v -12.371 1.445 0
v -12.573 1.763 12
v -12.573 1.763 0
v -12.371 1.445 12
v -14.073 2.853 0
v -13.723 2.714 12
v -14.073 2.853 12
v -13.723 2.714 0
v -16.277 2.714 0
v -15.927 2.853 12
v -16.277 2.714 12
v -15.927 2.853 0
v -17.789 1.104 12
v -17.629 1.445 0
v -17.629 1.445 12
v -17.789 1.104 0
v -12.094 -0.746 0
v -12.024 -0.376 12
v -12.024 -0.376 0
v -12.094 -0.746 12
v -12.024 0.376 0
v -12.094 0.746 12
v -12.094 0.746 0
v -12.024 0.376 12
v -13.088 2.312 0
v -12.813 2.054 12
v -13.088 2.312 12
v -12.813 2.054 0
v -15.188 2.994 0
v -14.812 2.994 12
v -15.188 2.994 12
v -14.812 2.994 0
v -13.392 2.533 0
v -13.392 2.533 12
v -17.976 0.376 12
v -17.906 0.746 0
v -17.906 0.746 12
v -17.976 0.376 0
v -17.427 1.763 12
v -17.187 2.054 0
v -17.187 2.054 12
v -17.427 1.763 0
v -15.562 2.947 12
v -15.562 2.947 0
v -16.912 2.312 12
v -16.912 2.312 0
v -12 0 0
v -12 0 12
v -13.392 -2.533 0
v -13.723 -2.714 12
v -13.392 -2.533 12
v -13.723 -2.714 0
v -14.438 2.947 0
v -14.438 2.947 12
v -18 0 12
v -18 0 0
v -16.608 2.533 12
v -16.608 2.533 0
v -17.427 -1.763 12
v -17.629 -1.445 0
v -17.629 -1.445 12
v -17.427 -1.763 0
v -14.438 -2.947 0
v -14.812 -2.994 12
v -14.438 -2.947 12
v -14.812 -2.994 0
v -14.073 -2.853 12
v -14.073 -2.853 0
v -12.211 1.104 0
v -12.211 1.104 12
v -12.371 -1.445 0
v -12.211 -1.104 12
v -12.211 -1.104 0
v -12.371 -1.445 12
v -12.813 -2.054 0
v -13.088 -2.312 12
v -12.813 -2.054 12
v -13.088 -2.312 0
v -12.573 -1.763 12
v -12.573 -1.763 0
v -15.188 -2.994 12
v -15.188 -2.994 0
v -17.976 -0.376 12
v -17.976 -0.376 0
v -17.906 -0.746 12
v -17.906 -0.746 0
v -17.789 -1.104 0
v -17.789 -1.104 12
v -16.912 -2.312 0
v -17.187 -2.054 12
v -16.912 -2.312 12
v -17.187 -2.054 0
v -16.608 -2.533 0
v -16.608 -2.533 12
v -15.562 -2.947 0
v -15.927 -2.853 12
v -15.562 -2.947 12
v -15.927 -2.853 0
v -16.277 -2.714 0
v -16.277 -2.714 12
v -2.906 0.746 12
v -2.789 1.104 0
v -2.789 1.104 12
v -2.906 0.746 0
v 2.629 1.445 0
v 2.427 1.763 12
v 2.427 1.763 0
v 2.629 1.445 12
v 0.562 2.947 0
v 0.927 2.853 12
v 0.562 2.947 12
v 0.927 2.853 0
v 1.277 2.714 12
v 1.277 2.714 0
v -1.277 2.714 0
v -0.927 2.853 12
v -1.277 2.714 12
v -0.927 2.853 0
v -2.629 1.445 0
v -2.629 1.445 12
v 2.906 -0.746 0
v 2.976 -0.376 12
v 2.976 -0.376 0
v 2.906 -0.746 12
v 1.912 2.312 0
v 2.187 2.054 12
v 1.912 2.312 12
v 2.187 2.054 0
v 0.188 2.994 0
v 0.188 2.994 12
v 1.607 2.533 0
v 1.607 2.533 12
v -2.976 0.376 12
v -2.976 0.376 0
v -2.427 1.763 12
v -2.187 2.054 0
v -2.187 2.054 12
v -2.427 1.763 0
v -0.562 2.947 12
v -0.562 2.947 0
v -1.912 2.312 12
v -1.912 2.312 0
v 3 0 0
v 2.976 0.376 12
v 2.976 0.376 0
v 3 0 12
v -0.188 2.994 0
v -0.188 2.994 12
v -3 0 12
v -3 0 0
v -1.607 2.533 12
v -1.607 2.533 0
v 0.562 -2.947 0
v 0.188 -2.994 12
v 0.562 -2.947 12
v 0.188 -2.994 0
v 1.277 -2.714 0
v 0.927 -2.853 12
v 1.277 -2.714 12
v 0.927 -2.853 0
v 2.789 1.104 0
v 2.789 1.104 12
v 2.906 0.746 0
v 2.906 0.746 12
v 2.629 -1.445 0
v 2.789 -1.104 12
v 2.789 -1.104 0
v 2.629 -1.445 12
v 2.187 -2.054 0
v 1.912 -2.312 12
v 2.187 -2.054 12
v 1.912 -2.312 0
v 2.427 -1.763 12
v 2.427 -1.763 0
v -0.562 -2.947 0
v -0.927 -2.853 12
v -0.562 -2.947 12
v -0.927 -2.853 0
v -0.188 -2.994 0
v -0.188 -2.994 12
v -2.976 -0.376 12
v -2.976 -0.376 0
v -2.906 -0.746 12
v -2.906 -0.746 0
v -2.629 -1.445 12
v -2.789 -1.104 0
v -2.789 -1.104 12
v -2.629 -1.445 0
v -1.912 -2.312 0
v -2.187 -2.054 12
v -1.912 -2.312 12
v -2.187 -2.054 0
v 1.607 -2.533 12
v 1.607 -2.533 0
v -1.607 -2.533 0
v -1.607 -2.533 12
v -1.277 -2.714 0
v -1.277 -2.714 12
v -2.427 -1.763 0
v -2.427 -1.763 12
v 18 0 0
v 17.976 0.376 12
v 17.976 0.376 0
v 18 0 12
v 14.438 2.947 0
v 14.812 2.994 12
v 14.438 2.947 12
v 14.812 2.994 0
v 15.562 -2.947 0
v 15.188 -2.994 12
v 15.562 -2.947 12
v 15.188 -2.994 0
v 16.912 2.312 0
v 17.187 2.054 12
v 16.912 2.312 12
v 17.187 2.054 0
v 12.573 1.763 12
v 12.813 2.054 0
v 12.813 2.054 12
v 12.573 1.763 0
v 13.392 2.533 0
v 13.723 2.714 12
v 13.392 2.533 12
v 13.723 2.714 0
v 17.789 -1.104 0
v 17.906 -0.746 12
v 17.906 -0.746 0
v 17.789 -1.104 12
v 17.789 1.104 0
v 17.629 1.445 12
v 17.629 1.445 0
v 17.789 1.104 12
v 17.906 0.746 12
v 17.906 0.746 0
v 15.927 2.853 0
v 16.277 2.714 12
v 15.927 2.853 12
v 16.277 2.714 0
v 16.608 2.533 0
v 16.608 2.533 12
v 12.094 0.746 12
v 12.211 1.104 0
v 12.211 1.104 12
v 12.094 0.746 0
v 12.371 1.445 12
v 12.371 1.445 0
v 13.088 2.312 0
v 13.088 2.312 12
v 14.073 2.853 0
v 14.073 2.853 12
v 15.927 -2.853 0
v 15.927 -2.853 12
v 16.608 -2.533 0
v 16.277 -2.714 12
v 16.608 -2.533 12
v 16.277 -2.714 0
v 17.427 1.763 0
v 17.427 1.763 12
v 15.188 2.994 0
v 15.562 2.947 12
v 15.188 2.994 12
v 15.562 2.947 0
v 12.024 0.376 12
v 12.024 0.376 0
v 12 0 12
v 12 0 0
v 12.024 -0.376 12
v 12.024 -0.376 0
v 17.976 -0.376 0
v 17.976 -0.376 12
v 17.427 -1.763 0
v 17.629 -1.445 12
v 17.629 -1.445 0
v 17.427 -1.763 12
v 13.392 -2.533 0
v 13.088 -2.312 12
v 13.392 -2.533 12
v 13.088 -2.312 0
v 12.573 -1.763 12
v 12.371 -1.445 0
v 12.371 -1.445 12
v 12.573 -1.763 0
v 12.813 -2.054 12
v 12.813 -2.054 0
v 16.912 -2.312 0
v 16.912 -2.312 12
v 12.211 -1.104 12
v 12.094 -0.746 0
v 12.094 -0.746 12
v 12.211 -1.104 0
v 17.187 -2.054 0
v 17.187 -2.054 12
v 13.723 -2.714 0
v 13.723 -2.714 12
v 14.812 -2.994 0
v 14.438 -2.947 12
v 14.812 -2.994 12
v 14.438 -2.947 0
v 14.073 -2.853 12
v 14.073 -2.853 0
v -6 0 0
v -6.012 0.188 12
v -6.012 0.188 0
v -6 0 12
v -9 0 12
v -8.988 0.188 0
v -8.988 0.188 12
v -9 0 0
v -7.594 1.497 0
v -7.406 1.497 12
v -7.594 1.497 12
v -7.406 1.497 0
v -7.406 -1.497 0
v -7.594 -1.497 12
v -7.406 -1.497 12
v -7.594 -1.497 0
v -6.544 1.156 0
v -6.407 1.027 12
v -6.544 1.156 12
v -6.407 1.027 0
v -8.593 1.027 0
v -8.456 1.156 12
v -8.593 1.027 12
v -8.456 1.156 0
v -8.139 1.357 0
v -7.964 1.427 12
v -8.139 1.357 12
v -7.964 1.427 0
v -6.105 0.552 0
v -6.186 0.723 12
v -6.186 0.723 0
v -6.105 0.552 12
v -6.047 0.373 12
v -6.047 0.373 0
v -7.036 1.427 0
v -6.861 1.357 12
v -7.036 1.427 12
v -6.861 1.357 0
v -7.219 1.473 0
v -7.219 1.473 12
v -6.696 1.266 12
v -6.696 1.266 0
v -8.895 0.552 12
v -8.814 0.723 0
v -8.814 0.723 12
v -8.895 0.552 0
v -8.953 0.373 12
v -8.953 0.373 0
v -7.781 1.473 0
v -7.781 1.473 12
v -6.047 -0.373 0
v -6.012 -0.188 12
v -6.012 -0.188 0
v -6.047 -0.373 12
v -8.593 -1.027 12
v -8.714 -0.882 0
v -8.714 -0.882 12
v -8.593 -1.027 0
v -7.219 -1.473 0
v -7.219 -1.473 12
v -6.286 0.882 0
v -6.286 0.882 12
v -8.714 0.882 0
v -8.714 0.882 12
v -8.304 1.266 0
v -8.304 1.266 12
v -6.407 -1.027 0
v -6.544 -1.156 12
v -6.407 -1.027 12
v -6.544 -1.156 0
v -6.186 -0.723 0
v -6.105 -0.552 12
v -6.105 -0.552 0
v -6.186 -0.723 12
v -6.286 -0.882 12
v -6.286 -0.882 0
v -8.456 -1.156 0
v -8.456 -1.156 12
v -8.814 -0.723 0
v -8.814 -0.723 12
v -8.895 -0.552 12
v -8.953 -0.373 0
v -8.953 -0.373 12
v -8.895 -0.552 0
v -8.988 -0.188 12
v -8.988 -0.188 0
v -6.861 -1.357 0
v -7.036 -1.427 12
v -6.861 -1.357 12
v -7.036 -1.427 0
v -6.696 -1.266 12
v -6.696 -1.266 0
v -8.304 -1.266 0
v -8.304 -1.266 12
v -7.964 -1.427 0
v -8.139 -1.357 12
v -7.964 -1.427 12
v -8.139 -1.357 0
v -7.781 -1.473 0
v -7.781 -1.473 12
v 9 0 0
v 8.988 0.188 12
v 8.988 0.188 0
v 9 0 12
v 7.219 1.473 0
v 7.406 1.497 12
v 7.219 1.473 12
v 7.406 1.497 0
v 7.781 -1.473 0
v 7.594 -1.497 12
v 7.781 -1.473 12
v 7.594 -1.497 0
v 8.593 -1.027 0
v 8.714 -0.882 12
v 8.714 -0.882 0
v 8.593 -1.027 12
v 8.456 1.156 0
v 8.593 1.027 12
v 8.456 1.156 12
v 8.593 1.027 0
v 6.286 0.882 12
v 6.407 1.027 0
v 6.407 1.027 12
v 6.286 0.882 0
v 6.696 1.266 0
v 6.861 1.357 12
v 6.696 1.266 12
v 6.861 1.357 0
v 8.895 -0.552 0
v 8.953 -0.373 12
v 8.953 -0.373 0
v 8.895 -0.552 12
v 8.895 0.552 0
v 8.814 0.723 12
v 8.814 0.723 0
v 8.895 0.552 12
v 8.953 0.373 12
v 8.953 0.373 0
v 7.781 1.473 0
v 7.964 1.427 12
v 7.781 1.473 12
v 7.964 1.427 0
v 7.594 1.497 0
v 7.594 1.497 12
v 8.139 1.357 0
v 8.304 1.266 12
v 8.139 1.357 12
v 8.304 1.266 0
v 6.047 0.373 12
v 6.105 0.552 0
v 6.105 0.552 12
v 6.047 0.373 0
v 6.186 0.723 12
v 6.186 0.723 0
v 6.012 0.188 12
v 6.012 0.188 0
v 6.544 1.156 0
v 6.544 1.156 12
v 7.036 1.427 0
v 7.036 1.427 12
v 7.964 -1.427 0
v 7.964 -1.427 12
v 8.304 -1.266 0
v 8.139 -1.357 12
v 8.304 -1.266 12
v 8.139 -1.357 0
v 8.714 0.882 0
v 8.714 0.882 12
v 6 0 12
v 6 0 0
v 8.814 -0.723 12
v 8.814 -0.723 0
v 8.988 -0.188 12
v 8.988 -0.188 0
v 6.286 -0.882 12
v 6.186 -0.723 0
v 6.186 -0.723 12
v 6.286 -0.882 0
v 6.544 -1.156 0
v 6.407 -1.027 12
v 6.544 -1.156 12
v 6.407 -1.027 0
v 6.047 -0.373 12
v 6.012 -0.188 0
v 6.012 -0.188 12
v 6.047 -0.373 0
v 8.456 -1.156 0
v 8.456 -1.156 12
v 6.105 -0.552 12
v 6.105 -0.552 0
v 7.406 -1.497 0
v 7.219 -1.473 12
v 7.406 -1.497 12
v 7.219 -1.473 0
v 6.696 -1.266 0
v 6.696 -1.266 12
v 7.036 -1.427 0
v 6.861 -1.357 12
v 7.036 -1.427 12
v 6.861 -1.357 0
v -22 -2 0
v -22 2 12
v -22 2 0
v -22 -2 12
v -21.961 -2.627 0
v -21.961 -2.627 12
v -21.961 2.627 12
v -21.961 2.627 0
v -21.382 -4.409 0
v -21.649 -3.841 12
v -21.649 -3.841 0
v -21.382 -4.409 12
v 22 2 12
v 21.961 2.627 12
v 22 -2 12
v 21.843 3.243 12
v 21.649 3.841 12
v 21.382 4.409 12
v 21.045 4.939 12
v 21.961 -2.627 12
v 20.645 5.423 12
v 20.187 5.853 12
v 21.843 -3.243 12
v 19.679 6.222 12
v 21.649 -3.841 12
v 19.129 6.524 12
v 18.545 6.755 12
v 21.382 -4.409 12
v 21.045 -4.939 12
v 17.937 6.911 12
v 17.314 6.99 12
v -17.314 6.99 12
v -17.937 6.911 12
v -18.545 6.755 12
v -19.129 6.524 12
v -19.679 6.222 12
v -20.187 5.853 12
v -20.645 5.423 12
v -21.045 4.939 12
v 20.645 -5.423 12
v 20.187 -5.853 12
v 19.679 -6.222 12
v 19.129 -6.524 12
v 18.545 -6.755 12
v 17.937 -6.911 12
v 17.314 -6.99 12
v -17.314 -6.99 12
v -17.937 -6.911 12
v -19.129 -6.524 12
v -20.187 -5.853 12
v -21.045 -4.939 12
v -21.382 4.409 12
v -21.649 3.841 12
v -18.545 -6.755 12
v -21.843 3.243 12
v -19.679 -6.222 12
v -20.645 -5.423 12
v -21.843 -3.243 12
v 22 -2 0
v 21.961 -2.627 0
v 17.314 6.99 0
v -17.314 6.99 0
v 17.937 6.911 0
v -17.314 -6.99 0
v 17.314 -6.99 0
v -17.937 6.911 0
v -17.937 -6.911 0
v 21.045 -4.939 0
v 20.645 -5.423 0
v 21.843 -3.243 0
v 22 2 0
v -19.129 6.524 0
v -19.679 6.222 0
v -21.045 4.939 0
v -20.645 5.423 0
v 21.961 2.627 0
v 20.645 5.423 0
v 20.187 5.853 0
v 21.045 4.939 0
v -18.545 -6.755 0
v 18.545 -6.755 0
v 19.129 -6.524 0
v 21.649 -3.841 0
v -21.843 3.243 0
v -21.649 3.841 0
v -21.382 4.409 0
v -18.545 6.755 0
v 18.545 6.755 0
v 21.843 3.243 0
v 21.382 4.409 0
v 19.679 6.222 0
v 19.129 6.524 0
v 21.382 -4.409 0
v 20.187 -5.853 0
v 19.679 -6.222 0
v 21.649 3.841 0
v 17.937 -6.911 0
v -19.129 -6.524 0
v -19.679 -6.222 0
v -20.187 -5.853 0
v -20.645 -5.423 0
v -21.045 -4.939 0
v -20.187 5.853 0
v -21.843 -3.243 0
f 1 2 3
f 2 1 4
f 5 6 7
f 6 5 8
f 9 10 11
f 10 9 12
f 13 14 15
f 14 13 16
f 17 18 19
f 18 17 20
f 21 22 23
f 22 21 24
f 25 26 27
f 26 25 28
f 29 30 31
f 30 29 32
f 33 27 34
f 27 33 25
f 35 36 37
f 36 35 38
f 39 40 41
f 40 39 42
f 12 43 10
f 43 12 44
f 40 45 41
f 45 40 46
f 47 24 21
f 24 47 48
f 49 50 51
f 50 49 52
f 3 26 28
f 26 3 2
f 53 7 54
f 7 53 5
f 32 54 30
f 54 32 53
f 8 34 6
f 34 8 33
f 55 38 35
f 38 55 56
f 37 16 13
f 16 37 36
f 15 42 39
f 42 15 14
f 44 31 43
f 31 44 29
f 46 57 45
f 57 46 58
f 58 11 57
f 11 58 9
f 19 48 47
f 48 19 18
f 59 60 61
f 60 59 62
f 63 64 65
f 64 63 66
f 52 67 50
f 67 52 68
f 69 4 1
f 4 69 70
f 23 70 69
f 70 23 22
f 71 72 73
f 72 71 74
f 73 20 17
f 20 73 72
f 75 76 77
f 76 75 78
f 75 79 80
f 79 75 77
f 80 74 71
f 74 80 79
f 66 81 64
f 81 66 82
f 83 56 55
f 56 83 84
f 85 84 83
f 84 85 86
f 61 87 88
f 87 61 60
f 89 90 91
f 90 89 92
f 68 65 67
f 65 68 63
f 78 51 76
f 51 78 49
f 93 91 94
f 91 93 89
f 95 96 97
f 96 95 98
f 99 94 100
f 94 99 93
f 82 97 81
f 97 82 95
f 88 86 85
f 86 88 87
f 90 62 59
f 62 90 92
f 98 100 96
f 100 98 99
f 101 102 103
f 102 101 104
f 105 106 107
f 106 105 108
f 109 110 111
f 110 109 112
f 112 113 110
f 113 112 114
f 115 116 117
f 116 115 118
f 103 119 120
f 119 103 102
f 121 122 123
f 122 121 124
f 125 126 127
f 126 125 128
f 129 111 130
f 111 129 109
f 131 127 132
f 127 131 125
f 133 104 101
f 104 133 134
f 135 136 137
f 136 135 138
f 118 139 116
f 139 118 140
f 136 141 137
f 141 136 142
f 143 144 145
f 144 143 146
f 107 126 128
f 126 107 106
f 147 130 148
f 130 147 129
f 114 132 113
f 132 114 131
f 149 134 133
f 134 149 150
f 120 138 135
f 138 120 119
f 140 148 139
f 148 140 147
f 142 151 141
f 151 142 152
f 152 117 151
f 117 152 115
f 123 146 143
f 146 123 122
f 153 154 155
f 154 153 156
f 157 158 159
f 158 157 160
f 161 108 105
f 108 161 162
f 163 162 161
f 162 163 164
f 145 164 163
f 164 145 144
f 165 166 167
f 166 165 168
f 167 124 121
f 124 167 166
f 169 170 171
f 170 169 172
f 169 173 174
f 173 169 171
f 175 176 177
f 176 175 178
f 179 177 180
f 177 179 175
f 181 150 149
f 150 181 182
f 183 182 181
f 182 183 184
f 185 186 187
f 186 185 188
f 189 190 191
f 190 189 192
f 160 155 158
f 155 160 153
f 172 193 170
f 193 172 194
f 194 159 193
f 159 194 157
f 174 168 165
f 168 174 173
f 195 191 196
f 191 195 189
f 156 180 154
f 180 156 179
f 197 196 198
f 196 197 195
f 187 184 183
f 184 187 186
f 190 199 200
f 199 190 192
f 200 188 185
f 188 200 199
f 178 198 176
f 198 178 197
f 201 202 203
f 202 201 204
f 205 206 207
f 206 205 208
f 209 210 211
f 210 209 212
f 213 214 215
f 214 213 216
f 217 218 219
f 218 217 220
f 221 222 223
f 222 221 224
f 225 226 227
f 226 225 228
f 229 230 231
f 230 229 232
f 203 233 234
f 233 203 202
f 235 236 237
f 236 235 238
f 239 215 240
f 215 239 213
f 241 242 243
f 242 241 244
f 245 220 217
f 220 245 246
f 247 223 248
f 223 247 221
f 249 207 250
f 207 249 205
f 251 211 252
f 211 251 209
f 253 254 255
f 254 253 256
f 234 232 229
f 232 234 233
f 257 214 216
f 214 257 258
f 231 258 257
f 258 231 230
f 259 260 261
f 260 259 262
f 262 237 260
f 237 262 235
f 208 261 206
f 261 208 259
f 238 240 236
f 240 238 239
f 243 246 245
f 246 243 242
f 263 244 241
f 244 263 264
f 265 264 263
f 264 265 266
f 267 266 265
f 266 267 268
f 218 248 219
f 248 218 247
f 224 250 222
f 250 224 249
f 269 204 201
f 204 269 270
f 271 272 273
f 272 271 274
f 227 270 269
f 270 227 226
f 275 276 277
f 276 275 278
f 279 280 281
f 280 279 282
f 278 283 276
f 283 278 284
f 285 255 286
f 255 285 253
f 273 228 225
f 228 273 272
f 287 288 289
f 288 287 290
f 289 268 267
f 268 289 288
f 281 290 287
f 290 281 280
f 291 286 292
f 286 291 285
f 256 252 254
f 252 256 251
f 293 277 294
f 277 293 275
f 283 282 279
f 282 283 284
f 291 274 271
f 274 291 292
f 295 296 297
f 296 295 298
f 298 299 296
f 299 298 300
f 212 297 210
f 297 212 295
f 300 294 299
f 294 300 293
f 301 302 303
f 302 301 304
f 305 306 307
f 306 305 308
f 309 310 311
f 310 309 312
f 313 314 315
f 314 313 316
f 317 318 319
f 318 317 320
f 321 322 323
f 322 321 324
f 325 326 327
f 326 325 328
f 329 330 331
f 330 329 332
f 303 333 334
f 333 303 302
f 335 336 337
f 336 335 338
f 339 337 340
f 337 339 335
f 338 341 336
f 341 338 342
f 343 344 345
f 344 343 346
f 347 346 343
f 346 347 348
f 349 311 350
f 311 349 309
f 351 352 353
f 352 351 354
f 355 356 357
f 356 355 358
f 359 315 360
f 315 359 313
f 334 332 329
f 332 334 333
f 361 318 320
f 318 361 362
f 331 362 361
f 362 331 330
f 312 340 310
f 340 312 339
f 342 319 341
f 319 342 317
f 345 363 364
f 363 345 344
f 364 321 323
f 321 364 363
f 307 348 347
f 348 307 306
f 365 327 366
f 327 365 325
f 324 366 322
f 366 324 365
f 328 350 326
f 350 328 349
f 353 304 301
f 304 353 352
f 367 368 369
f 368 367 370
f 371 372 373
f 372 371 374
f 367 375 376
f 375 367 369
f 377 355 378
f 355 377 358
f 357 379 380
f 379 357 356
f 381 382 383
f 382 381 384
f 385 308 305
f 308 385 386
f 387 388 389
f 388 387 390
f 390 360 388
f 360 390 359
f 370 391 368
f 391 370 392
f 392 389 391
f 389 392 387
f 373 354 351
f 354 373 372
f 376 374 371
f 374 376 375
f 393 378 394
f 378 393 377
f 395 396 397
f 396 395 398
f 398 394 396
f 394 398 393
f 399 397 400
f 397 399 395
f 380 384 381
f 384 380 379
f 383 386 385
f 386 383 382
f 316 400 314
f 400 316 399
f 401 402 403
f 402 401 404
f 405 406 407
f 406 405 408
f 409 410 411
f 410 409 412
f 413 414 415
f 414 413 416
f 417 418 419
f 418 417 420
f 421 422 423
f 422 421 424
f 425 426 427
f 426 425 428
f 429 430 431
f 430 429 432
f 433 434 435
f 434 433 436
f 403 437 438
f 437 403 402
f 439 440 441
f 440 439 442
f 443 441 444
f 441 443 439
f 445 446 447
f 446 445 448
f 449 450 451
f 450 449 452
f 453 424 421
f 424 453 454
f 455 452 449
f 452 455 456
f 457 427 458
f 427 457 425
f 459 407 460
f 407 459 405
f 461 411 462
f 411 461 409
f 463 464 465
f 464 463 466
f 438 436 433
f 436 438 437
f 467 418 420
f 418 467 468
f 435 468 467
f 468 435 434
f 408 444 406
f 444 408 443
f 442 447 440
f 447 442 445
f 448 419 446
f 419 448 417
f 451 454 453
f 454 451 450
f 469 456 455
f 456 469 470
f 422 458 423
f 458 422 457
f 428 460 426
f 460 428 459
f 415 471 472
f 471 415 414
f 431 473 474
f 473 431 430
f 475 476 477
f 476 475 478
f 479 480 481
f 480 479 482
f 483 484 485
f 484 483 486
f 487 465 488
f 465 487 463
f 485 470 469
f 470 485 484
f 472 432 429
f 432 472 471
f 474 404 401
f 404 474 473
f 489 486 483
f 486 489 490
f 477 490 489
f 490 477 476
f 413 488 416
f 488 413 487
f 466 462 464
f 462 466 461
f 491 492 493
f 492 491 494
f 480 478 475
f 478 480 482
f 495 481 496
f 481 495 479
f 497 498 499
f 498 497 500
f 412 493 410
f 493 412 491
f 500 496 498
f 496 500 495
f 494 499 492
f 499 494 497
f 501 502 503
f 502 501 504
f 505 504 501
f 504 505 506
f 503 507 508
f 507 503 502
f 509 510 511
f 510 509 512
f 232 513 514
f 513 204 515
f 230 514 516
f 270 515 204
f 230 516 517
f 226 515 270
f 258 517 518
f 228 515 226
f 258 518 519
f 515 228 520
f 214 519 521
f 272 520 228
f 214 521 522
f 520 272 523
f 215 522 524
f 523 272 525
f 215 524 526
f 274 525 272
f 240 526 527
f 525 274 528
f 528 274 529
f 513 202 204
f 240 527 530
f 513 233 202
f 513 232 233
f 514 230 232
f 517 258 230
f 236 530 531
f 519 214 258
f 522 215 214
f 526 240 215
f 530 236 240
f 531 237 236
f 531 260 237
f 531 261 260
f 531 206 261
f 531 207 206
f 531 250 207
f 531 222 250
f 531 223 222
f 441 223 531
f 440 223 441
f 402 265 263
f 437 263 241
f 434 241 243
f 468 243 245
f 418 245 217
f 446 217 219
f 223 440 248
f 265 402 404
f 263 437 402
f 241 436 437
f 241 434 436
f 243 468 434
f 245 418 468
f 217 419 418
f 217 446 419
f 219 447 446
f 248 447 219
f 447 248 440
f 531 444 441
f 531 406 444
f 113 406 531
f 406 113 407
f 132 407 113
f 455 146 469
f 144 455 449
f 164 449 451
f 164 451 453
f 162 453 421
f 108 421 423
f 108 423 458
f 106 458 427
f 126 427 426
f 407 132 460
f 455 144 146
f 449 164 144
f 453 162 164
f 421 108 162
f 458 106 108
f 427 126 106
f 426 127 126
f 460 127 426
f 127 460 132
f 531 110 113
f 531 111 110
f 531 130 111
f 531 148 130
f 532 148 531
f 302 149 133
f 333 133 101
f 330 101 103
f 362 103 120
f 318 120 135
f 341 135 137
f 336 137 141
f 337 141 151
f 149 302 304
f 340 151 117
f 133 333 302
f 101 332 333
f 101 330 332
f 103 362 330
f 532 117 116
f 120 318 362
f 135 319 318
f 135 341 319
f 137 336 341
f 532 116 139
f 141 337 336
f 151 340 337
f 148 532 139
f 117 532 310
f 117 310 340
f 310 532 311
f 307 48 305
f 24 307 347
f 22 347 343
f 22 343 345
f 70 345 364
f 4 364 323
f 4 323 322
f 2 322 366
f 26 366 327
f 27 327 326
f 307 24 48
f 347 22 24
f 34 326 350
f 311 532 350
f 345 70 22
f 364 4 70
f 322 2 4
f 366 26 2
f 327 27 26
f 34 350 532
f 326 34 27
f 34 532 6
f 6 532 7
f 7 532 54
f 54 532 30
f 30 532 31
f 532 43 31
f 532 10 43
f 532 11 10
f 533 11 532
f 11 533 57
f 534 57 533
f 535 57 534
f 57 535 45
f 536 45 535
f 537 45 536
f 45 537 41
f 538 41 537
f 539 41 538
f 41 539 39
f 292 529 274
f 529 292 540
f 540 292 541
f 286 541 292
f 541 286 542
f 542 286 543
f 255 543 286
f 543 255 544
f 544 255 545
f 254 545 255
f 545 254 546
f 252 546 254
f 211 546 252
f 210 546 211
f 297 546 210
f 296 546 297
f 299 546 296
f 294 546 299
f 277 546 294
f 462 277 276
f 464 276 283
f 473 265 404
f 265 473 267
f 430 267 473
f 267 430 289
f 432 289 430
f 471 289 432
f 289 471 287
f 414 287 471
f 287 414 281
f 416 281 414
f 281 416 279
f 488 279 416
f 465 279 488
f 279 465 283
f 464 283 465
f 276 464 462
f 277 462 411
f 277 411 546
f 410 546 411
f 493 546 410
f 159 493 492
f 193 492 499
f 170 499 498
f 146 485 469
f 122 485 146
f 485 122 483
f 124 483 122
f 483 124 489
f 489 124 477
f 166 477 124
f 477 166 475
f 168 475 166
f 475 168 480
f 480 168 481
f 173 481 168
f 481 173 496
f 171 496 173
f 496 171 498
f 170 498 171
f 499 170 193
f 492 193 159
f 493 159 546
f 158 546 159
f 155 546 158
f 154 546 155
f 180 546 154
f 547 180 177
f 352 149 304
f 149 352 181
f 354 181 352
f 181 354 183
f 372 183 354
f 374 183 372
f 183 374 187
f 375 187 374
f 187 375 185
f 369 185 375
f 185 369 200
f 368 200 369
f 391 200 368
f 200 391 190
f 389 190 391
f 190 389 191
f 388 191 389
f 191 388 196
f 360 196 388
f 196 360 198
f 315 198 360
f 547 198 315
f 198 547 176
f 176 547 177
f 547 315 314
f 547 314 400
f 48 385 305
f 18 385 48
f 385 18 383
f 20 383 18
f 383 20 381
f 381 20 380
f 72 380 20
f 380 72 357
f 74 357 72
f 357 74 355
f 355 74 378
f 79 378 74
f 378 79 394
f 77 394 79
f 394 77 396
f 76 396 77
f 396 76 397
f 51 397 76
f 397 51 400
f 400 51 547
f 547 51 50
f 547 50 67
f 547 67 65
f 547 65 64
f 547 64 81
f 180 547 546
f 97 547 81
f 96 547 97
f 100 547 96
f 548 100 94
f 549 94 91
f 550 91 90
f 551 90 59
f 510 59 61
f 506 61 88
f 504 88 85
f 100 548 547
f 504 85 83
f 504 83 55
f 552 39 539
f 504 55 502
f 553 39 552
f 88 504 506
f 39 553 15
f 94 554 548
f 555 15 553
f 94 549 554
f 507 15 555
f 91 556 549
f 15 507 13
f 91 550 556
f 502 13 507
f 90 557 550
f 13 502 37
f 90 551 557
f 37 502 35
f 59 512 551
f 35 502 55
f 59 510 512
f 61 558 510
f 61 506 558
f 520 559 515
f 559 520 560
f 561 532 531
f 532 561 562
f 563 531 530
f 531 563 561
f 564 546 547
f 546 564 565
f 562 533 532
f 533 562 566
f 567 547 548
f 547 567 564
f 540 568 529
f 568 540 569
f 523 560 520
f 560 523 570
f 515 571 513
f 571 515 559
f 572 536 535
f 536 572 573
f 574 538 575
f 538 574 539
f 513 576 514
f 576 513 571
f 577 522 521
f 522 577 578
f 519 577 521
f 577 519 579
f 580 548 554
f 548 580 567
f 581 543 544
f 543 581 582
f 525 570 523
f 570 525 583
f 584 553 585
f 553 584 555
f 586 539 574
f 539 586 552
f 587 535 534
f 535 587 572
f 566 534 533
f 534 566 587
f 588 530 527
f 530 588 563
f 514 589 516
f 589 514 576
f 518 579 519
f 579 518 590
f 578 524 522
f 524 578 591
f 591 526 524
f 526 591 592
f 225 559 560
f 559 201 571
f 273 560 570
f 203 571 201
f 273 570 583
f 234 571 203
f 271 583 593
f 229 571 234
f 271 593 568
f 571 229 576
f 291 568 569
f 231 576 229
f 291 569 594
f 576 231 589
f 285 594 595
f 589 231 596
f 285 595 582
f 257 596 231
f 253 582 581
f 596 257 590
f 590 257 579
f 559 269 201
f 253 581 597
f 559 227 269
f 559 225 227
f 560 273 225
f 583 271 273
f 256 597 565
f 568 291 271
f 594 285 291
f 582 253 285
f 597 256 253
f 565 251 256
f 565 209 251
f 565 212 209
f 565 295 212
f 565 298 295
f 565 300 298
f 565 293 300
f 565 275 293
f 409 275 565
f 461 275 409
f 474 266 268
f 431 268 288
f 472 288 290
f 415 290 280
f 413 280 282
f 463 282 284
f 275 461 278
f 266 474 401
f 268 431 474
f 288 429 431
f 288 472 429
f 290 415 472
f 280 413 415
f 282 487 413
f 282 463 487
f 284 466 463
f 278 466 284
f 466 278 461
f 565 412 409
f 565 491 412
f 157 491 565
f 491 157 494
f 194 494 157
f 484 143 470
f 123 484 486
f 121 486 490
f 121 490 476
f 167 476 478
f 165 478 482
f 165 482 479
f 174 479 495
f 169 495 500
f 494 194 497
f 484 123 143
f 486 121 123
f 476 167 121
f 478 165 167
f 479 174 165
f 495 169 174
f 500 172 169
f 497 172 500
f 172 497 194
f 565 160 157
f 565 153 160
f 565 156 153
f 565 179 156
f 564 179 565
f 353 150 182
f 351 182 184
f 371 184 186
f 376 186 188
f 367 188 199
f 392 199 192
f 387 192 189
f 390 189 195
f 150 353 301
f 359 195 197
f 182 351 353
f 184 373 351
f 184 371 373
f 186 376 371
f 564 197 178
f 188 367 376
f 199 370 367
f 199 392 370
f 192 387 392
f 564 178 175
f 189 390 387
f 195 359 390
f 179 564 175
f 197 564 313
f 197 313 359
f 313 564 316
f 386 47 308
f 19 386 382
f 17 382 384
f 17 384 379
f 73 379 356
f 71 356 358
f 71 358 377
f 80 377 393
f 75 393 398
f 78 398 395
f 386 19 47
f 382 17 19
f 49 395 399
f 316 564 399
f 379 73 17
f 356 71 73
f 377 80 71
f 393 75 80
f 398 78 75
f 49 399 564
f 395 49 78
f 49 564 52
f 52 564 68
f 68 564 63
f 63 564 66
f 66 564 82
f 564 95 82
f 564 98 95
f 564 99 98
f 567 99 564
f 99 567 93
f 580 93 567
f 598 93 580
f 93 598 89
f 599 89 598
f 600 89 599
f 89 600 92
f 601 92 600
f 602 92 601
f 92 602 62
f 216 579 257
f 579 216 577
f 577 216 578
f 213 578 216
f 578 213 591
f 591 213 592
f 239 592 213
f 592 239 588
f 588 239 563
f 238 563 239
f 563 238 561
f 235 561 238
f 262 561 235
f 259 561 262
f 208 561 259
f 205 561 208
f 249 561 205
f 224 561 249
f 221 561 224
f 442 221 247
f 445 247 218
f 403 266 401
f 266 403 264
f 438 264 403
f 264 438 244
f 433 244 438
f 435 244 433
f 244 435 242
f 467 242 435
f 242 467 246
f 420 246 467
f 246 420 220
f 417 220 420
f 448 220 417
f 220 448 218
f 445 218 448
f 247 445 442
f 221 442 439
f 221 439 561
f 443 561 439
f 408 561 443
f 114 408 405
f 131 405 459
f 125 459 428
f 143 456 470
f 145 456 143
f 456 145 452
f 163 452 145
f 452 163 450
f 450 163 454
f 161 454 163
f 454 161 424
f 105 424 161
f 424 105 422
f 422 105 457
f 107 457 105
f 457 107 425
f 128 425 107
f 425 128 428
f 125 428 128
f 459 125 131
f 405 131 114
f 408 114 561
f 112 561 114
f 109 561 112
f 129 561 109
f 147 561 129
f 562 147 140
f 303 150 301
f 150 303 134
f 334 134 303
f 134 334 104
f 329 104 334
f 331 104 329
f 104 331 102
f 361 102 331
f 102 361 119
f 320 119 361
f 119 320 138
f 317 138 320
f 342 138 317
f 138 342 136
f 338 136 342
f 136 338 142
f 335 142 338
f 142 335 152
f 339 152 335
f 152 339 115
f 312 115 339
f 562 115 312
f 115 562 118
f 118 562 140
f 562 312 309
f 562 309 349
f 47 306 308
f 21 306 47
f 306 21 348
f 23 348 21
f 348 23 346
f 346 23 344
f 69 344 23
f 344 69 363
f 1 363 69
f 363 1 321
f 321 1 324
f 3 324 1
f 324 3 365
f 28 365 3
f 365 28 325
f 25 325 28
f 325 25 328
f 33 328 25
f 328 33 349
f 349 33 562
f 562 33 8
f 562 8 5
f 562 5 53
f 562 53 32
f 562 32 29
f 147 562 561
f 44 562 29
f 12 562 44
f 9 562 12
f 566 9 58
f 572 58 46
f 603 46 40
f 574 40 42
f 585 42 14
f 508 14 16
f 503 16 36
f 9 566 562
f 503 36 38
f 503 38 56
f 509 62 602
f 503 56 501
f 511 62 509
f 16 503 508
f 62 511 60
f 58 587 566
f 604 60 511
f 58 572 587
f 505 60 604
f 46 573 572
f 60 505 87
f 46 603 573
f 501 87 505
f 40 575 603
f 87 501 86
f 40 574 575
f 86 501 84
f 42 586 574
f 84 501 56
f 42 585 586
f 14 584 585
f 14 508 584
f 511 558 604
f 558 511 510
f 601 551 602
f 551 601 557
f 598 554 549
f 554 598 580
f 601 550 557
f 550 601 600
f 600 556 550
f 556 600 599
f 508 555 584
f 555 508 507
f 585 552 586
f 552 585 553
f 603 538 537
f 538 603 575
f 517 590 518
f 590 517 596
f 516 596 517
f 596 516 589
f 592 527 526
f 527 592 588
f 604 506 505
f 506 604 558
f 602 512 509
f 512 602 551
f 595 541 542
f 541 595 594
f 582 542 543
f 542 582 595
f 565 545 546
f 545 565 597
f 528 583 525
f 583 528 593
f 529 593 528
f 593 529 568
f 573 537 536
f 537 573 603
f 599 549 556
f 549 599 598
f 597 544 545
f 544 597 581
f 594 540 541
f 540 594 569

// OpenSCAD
$fn = 50;


difference() {
	union() {
		*color(alpha = 1.0000000000, c = "gray") {
			translate(v = [0, 7, 0]) {
				linear_extrude(height = 1) {
					text(font = "Arial:style=Bold", halign = "center", size = 4.5000000000, text = "COMMENT plate main", valign = "center");
				}
			}
		}
		*color(alpha = 1.0000000000, c = "gray") {
			translate(v = [0, 14, 0]) {
				linear_extrude(height = 1) {
					text(font = "Arial:style=Bold", halign = "center", size = 4.5000000000, text = "COMMENT description oobb_plate_shape_p_type_12_depth_3_width_1_height_12_thickness_true_both_holes", valign = "center");
				}
			}
		}
		hull() {
			translate(v = [-17.0000000000, 2.0000000000, 0]) {
				cylinder(h = 12, r = 5);
			}
			translate(v = [17.0000000000, 2.0000000000, 0]) {
				cylinder(h = 12, r = 5);
			}
			translate(v = [-17.0000000000, -2.0000000000, 0]) {
				cylinder(h = 12, r = 5);
			}
			translate(v = [17.0000000000, -2.0000000000, 0]) {
				cylinder(h = 12, r = 5);
			}
		}
	}
	union() {
		*color(alpha = 1.0000000000, c = "gray") {
			translate(v = [0, 7, 0]) {
				linear_extrude(height = 1) {
					text(font = "Arial:style=Bold", halign = "center", size = 4.5000000000, text = "COMMENT holes main", valign = "center");
				}
			}
		}
		*color(alpha = 1.0000000000, c = "gray") {
			translate(v = [0, 14, 0]) {
				linear_extrude(height = 1) {
					text(font = "Arial:style=Bold", halign = "center", size = 4.5000000000, text = "COMMENT description oobb_holes_shape_n_type_3_width_1_height_12_thickness_true_both_holes", valign = "center");
				}
			}
		}
		translate(v = [-15.0000000000, 0.0000000000, 0]) {
			translate(v = [0, 0, -50]) {
				cylinder(h = 100, r = 3.0000000000);
			}
		}
		translate(v = [0, 0, -50]) {
			cylinder(h = 100, r = 3.0000000000);
		}
		translate(v = [15.0000000000, 0.0000000000, 0]) {
			translate(v = [0, 0, -50]) {
				cylinder(h = 100, r = 3.0000000000);
			}
		}
		translate(v = [-15.0000000000, 0.0000000000, 0]) {
			translate(v = [0, 0, -50]) {
				cylinder(h = 100, r = 1.5000000000);
			}
		}
		translate(v = [-7.5000000000, 0.0000000000, 0]) {
			translate(v = [0, 0, -50]) {
				cylinder(h = 100, r = 1.5000000000);
			}
		}
		translate(v = [0, 0, -50]) {
			cylinder(h = 100, r = 1.5000000000);
		}
		translate(v = [7.5000000000, 0.0000000000, 0]) {
			translate(v = [0, 0, -50]) {
				cylinder(h = 100, r = 1.5000000000);
			}
		}
		translate(v = [15.0000000000, 0.0000000000, 0]) {
			translate(v = [0, 0, -50]) {
				cylinder(h = 100, r = 1.5000000000);
			}
		}
	}
}
